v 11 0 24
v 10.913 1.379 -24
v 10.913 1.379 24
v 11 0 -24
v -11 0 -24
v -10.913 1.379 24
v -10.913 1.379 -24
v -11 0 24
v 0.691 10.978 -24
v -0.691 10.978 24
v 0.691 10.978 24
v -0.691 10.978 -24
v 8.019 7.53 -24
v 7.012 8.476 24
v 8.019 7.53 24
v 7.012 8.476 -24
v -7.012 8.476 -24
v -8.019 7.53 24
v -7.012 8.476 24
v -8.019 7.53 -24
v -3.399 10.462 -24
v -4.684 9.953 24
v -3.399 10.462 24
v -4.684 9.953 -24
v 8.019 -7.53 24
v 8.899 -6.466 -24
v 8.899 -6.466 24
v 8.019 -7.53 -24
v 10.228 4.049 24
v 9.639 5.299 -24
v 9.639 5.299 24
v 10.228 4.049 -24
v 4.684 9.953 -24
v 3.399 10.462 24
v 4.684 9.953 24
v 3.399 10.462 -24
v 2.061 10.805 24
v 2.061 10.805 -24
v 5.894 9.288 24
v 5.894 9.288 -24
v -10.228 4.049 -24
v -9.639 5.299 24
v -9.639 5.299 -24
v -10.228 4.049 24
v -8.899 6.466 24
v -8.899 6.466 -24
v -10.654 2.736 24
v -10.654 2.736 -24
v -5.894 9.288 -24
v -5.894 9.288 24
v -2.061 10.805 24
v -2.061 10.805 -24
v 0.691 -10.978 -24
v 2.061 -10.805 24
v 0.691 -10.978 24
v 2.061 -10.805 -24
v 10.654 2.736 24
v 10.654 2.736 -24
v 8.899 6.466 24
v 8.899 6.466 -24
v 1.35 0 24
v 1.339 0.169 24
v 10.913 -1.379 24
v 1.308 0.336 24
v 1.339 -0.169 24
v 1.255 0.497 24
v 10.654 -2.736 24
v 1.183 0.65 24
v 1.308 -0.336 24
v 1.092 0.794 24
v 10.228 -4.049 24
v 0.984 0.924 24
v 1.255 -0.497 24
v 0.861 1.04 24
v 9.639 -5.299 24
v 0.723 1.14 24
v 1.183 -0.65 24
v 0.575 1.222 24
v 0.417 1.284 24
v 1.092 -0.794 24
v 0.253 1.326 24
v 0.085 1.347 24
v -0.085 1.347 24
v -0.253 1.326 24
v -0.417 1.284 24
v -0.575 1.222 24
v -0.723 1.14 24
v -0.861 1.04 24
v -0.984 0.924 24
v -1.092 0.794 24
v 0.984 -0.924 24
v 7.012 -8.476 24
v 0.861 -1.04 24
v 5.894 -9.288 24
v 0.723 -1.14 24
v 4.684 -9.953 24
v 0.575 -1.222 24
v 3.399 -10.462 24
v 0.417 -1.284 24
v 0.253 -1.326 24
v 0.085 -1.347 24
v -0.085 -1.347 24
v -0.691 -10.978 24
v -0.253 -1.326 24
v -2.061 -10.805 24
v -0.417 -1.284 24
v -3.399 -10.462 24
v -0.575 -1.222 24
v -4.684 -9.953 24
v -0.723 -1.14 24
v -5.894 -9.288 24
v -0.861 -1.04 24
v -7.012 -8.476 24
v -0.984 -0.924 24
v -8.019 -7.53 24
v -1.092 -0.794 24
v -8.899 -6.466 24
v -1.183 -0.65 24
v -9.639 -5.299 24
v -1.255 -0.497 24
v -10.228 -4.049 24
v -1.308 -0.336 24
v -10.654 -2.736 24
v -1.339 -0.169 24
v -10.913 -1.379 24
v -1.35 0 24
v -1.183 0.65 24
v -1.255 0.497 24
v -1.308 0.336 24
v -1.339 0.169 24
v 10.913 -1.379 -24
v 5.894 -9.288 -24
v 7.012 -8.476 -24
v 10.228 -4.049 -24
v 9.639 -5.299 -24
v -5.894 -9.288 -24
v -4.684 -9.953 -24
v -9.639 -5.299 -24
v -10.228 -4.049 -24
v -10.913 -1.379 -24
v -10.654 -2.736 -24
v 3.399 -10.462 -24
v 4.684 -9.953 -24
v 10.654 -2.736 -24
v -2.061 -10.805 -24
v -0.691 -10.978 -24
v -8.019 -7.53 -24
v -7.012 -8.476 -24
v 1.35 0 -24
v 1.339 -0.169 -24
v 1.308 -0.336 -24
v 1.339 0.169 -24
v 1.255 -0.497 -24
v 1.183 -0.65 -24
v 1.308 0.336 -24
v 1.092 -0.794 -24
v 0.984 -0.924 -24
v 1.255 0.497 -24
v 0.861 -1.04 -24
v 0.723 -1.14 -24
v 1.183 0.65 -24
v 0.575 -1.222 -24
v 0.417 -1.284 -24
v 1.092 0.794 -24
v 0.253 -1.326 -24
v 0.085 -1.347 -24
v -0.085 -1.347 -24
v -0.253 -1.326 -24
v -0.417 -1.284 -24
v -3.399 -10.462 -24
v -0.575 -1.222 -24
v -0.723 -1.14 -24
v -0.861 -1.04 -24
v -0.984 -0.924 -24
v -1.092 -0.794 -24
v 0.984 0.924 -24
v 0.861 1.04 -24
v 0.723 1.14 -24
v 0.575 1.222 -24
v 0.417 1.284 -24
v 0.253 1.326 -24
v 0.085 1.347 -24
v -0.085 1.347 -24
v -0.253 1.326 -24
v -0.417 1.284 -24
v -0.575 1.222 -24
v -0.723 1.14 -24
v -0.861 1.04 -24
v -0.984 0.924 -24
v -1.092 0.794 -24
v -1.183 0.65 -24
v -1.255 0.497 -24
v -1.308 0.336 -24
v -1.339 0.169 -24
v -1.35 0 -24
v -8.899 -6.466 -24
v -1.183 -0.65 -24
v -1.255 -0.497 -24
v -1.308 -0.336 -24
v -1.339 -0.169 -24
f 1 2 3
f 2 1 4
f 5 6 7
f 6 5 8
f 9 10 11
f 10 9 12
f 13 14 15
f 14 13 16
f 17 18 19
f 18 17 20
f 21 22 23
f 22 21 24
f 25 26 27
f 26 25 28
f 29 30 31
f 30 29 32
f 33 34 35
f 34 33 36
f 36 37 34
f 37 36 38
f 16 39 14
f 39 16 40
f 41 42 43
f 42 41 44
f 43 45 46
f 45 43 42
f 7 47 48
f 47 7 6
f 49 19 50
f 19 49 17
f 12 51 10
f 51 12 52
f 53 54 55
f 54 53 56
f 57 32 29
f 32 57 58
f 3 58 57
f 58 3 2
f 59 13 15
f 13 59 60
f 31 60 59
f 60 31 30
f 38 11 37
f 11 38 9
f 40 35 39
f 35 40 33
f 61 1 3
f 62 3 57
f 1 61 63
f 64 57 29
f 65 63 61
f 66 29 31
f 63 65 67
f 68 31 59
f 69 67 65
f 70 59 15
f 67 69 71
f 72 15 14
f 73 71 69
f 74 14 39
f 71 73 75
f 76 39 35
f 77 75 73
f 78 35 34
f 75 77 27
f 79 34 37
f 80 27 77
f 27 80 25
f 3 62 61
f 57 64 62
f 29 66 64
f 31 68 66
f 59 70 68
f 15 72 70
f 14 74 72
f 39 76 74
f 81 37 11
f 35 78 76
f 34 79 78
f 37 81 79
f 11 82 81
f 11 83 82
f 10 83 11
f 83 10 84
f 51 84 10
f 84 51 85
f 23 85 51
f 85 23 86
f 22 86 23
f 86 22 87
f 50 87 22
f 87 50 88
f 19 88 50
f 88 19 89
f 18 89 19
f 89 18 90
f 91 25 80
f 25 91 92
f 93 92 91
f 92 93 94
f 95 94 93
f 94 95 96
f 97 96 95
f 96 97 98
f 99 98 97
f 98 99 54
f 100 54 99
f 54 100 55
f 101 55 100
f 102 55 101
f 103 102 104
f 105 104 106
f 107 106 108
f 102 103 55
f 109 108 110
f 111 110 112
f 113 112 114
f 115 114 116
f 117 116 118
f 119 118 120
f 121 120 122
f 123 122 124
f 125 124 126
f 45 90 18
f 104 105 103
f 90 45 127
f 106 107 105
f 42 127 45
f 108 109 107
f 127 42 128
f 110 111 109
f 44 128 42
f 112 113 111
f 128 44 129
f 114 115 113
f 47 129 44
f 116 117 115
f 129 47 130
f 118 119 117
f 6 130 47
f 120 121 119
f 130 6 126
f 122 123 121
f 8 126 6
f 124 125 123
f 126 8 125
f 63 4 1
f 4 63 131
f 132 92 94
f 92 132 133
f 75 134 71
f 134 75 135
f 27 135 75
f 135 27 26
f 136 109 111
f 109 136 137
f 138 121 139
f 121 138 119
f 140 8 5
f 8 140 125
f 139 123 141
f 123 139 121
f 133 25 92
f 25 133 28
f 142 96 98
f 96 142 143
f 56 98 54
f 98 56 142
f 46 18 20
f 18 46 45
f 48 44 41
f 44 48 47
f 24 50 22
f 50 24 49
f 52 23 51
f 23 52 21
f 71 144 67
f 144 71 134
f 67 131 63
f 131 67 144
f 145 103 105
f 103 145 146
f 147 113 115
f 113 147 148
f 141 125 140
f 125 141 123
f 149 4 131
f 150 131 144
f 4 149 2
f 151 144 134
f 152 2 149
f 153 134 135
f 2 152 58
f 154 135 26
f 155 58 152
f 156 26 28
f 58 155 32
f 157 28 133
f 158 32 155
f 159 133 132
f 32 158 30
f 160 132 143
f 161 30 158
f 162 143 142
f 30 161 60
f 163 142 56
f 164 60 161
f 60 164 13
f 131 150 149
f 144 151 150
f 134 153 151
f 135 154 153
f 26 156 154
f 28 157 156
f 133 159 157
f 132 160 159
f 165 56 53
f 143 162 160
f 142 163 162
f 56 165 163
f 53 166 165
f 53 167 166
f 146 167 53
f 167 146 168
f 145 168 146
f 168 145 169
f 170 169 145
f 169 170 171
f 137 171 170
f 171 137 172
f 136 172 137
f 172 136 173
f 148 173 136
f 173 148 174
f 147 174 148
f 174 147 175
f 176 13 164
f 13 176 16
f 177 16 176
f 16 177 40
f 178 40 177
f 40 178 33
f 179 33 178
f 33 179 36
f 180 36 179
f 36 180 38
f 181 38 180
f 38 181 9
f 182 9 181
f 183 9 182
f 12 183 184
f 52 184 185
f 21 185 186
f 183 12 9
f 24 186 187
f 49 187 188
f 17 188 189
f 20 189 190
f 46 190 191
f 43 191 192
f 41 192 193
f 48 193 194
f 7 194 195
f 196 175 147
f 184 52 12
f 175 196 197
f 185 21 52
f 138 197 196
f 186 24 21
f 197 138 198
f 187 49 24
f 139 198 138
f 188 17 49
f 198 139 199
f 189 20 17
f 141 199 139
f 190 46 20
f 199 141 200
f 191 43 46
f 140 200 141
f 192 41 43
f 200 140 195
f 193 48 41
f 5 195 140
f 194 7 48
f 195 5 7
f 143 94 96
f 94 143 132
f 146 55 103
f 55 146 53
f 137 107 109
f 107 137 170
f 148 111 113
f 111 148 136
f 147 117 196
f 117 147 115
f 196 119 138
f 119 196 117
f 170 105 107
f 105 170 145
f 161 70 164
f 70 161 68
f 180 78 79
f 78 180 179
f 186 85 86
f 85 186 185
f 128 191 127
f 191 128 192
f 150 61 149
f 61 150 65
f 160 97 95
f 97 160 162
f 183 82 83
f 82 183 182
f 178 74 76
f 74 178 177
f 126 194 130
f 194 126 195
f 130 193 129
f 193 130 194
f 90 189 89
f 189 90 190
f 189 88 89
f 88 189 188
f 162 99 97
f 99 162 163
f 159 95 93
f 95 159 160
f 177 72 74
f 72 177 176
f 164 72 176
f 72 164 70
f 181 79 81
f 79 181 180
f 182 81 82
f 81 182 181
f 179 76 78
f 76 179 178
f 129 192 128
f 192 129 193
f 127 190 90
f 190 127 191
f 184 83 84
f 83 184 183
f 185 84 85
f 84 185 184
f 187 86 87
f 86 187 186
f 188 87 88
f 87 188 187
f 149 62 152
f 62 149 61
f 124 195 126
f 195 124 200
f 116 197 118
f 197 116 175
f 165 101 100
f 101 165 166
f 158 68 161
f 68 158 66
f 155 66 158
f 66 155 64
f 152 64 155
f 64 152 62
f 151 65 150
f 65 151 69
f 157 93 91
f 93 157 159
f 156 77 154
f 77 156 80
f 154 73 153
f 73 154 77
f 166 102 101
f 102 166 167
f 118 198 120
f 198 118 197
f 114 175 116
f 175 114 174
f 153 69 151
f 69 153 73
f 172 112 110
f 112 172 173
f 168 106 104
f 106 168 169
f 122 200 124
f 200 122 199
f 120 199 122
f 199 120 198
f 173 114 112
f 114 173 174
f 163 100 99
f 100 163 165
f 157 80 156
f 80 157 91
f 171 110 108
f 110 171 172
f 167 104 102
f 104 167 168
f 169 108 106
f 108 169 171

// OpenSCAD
$fn = 50;


difference() {
	union() {
		translate(v = [0, 0, -24.0000000000]) {
			cylinder(h = 48, r = 11.0000000000);
		}
	}
	union() {
		translate(v = [0, 0, -100.0000000000]) {
			cylinder(h = 200, r = 1.3500000000);
		}
	}
}
